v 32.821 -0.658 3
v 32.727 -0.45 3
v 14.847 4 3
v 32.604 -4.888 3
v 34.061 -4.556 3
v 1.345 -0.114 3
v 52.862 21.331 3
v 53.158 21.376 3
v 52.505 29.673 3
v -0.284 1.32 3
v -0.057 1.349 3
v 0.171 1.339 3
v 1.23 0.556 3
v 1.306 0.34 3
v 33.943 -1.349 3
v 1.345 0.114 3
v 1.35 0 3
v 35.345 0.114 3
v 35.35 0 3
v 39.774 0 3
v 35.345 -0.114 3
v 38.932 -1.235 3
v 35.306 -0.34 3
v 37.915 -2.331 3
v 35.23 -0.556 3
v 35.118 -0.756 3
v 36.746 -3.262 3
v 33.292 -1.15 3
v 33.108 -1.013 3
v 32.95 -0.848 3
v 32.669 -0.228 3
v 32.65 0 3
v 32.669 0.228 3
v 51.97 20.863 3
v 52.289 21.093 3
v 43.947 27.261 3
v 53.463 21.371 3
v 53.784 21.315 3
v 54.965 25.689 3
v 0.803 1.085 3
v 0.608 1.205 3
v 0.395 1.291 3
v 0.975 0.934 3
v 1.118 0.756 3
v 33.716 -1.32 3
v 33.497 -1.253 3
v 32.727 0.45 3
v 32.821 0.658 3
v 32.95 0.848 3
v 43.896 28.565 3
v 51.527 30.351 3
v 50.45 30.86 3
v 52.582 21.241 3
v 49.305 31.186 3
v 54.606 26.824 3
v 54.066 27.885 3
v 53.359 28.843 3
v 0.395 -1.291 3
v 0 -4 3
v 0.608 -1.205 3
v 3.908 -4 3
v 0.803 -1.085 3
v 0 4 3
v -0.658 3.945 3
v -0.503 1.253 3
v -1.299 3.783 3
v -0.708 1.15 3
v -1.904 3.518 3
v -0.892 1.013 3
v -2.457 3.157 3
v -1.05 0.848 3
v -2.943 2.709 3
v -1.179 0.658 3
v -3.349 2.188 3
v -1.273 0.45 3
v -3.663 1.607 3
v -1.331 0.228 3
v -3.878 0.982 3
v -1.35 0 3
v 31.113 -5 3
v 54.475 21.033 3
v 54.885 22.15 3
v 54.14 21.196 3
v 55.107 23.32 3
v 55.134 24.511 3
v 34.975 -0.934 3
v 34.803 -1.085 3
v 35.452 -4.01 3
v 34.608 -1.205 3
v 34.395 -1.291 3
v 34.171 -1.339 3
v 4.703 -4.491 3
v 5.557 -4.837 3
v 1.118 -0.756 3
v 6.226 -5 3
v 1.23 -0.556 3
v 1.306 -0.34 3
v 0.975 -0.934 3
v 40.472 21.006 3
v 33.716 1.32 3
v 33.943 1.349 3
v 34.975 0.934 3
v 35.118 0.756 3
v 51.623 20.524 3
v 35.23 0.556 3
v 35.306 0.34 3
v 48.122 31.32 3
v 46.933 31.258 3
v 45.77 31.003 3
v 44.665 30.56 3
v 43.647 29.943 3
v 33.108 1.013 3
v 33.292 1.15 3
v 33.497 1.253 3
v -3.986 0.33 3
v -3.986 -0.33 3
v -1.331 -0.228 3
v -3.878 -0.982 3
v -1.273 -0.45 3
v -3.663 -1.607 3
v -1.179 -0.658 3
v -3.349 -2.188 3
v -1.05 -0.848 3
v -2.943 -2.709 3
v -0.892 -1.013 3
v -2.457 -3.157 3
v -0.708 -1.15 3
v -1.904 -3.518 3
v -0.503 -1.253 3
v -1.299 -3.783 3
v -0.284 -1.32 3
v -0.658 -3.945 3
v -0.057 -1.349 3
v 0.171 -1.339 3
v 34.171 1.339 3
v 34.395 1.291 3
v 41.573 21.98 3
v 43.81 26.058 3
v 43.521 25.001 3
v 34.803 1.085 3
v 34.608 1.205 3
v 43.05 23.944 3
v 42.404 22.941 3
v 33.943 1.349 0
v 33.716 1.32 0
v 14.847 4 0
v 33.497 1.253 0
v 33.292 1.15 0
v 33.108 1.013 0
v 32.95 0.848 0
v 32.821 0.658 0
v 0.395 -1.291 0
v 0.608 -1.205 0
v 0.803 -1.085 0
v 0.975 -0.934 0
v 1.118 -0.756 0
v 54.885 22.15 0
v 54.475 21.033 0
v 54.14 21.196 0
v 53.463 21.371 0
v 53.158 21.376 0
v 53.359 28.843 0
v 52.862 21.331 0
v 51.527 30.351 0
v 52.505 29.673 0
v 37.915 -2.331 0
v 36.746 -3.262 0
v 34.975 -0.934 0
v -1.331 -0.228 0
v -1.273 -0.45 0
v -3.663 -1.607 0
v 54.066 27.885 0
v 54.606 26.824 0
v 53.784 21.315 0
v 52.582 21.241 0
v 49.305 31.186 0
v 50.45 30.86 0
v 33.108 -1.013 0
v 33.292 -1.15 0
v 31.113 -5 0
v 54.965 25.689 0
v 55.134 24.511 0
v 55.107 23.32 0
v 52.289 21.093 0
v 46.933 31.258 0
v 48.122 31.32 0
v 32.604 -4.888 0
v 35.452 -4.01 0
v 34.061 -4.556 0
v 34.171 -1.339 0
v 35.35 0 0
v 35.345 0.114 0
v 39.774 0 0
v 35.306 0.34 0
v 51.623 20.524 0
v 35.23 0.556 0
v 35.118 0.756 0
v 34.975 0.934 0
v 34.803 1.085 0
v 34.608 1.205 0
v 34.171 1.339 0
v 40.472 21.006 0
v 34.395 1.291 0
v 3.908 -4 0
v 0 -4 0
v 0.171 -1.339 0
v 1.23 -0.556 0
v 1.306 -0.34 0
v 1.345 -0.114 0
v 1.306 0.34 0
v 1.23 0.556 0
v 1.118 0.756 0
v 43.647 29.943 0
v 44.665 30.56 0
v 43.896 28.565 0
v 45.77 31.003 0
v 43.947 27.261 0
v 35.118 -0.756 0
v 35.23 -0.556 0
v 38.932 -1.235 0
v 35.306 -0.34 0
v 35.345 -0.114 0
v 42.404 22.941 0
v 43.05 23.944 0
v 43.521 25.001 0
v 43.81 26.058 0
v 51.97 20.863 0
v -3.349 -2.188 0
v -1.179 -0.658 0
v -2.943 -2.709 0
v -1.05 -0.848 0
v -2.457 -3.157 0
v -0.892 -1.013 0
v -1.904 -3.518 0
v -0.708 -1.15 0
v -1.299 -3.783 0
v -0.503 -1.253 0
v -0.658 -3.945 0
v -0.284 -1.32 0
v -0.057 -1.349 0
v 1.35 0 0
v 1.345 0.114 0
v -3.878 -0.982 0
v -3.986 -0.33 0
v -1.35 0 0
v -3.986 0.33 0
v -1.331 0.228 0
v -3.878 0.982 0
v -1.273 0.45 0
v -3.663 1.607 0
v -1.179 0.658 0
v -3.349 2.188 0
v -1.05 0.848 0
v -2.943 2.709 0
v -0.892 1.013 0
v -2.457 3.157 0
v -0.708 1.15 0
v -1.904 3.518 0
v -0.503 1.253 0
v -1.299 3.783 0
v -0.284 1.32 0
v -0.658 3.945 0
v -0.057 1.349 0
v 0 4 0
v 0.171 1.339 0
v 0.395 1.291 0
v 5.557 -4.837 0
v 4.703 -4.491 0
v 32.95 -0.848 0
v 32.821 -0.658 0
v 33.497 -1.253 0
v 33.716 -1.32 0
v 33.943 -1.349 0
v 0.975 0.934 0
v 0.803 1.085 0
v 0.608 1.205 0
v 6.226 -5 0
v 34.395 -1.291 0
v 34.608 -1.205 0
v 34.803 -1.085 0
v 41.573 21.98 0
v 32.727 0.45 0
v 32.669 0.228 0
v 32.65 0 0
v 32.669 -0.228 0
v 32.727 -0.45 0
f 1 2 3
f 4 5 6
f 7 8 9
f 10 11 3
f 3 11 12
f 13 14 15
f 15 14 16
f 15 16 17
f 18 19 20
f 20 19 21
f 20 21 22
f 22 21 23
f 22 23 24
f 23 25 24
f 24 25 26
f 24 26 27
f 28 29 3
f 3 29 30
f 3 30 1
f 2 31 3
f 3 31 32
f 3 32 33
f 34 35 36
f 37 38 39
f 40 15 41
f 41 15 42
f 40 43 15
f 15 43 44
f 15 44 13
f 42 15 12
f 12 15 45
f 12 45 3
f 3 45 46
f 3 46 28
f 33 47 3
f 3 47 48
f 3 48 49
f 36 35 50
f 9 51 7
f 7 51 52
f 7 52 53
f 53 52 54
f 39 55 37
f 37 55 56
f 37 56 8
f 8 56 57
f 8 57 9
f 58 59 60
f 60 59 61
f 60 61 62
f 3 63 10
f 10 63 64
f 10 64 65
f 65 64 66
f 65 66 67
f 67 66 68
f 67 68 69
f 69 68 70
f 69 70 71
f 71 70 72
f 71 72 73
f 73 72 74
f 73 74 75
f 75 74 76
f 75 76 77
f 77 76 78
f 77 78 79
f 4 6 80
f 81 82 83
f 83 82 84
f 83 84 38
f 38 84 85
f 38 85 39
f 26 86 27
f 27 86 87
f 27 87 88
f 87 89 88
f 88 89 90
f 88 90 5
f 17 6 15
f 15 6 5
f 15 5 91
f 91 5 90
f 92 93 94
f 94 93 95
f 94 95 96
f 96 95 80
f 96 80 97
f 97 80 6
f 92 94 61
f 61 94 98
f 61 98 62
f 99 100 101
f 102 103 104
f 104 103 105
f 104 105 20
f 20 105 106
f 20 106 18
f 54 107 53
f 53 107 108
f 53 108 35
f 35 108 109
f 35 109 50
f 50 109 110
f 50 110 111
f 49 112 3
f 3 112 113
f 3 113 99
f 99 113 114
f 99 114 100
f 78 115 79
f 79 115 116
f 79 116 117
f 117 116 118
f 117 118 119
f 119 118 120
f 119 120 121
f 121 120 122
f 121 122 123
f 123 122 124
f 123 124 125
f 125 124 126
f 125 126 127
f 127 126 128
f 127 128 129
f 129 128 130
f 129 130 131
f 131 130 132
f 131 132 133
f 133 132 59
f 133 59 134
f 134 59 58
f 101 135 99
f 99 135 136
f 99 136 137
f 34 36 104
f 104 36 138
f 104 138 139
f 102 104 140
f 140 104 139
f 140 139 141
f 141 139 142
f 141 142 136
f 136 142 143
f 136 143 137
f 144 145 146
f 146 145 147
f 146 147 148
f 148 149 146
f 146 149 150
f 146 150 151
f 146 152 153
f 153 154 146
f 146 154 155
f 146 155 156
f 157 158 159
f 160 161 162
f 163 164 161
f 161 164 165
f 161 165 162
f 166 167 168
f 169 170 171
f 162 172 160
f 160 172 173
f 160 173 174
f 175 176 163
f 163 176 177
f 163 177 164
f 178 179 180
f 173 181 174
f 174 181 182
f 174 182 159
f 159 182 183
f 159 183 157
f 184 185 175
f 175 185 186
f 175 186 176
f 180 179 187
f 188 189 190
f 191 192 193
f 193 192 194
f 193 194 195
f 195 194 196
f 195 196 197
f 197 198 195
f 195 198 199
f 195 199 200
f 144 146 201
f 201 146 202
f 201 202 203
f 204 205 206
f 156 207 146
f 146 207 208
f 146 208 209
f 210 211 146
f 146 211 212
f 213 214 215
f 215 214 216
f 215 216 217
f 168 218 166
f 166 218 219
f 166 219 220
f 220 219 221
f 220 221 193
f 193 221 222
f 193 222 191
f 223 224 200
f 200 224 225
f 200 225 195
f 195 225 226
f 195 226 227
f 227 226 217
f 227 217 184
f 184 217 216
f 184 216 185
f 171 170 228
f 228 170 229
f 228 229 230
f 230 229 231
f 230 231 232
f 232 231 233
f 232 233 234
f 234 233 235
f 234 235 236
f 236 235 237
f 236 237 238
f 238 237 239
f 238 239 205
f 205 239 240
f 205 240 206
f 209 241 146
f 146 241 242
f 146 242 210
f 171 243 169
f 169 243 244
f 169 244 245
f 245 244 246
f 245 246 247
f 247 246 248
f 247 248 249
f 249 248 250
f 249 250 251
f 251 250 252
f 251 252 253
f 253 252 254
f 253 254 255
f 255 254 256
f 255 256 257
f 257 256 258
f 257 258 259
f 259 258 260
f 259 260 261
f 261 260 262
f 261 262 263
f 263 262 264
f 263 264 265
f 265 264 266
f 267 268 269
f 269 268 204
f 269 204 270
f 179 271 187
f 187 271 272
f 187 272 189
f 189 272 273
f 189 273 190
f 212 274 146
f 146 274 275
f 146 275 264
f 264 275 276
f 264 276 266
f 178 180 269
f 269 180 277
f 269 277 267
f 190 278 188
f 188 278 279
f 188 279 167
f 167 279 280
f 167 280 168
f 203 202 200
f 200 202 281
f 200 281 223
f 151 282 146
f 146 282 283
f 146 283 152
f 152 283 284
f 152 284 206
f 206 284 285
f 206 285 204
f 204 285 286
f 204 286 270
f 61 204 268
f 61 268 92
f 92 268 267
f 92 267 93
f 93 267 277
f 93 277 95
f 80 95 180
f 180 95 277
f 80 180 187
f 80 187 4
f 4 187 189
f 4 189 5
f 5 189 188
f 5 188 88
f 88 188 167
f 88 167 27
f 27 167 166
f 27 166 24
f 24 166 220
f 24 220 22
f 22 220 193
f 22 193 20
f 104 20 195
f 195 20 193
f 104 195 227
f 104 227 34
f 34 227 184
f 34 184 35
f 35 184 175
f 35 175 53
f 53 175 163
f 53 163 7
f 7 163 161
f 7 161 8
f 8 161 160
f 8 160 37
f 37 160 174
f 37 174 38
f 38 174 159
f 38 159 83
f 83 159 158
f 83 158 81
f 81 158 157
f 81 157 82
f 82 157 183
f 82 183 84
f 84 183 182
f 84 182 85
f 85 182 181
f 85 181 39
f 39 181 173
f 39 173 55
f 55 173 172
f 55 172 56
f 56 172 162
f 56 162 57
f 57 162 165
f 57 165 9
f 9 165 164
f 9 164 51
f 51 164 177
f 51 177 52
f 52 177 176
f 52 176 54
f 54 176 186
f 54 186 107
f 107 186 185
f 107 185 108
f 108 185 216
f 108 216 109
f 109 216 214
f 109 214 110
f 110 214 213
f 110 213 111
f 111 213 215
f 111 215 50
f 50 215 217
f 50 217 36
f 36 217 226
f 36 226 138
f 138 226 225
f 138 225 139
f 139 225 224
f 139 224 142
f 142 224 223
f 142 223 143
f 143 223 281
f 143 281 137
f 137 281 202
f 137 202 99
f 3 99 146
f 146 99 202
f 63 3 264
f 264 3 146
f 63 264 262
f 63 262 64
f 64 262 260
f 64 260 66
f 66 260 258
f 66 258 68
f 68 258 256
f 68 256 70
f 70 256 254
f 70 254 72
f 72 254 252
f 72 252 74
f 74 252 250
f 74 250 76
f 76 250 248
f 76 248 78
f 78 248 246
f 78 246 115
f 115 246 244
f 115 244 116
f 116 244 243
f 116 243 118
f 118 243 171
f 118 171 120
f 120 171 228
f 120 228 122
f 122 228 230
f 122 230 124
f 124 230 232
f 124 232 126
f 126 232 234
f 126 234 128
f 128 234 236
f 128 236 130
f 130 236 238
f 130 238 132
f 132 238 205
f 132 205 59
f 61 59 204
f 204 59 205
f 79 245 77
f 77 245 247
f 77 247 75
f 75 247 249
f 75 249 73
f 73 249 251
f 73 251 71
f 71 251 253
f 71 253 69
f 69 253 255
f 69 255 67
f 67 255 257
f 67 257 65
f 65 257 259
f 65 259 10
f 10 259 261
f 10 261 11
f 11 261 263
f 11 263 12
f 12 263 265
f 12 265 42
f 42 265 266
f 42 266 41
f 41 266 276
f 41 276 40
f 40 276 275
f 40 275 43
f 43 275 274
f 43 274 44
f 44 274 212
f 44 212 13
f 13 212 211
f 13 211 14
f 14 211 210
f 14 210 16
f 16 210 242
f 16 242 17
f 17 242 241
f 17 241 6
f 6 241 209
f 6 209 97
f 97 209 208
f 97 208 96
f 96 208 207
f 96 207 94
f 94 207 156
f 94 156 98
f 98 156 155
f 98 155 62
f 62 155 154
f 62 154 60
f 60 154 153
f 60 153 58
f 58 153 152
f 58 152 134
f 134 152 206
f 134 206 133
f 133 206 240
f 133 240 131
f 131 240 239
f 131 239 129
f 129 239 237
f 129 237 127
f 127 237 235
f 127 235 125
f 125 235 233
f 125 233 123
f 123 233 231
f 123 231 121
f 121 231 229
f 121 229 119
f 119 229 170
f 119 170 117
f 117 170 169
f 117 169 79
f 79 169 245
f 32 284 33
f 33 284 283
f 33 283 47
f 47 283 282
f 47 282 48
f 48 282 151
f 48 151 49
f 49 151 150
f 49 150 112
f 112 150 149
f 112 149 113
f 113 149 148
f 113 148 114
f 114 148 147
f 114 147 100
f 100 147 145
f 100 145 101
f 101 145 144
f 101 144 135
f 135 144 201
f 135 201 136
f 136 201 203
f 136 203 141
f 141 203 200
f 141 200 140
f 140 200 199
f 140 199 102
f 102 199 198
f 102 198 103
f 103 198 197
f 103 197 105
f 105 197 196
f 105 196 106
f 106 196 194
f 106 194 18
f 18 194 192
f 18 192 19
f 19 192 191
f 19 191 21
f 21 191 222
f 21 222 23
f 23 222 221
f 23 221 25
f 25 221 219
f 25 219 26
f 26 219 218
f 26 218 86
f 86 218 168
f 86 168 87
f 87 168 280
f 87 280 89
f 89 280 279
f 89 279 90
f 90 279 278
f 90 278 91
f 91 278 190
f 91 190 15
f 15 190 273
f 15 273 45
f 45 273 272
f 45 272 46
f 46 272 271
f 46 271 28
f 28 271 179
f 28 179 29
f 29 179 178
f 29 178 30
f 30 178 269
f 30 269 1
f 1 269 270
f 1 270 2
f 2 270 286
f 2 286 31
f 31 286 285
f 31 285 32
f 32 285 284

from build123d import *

# Parameters (mm, degrees)
SKETCH_1_R      = 1.35
EXTRUDE_2_DEPTH = 3


with BuildPart() as part:
    # 草图1 → 凸台-拉伸2 (new body)
    with BuildSketch(Plane.XY):
        with BuildLine():
            Line((6.226098023, -5), (31.113248654, -5))
            ThreePointArc((31.113248654, -5), (36.113248654, -3.660254038), (39.773502692, 0))
            Line((39.773502692, 0), (51.622883551, 20.523729686))
            add(Edge.make_bspline(
                [(51.622883551, 20.523729686), (52.87217552, 21.925402984), (54.475191511, 21.032727874)],
                knots=[0, 0, 0, 1, 1, 1], degree=2))
            ThreePointArc((54.475191511, 21.032727874), (52.505149262, 29.672890493), (43.647343513, 29.942619722))
            add(Edge.make_bspline(
                [(40.471851368, 21.005877846), (44.982527223, 24.526926475), (43.647343513, 29.942619722)],
                knots=[0, 0, 0, 1, 1, 1], degree=2))
            Line((40.471851368, 21.005877846), (14.846921247, 4))
            Line((14.846921247, 4), (0, 4))
            ThreePointArc((0, 4), (-4, 0), (0, -4))
            Line((0, -4), (3.908343777, -4))
            add(Edge.make_bspline(
                [(3.908343777, -4), (4.94861431, -4.76744043), (6.226098023, -5)],
                knots=[0, 0, 0, 1, 1, 1], degree=2))
        make_face()
        Circle(SKETCH_1_R, mode=Mode.SUBTRACT)
        with Locations((34, 0)):
            Circle(SKETCH_1_R, mode=Mode.SUBTRACT)
    extrude(amount=EXTRUDE_2_DEPTH)


solid = part.part
